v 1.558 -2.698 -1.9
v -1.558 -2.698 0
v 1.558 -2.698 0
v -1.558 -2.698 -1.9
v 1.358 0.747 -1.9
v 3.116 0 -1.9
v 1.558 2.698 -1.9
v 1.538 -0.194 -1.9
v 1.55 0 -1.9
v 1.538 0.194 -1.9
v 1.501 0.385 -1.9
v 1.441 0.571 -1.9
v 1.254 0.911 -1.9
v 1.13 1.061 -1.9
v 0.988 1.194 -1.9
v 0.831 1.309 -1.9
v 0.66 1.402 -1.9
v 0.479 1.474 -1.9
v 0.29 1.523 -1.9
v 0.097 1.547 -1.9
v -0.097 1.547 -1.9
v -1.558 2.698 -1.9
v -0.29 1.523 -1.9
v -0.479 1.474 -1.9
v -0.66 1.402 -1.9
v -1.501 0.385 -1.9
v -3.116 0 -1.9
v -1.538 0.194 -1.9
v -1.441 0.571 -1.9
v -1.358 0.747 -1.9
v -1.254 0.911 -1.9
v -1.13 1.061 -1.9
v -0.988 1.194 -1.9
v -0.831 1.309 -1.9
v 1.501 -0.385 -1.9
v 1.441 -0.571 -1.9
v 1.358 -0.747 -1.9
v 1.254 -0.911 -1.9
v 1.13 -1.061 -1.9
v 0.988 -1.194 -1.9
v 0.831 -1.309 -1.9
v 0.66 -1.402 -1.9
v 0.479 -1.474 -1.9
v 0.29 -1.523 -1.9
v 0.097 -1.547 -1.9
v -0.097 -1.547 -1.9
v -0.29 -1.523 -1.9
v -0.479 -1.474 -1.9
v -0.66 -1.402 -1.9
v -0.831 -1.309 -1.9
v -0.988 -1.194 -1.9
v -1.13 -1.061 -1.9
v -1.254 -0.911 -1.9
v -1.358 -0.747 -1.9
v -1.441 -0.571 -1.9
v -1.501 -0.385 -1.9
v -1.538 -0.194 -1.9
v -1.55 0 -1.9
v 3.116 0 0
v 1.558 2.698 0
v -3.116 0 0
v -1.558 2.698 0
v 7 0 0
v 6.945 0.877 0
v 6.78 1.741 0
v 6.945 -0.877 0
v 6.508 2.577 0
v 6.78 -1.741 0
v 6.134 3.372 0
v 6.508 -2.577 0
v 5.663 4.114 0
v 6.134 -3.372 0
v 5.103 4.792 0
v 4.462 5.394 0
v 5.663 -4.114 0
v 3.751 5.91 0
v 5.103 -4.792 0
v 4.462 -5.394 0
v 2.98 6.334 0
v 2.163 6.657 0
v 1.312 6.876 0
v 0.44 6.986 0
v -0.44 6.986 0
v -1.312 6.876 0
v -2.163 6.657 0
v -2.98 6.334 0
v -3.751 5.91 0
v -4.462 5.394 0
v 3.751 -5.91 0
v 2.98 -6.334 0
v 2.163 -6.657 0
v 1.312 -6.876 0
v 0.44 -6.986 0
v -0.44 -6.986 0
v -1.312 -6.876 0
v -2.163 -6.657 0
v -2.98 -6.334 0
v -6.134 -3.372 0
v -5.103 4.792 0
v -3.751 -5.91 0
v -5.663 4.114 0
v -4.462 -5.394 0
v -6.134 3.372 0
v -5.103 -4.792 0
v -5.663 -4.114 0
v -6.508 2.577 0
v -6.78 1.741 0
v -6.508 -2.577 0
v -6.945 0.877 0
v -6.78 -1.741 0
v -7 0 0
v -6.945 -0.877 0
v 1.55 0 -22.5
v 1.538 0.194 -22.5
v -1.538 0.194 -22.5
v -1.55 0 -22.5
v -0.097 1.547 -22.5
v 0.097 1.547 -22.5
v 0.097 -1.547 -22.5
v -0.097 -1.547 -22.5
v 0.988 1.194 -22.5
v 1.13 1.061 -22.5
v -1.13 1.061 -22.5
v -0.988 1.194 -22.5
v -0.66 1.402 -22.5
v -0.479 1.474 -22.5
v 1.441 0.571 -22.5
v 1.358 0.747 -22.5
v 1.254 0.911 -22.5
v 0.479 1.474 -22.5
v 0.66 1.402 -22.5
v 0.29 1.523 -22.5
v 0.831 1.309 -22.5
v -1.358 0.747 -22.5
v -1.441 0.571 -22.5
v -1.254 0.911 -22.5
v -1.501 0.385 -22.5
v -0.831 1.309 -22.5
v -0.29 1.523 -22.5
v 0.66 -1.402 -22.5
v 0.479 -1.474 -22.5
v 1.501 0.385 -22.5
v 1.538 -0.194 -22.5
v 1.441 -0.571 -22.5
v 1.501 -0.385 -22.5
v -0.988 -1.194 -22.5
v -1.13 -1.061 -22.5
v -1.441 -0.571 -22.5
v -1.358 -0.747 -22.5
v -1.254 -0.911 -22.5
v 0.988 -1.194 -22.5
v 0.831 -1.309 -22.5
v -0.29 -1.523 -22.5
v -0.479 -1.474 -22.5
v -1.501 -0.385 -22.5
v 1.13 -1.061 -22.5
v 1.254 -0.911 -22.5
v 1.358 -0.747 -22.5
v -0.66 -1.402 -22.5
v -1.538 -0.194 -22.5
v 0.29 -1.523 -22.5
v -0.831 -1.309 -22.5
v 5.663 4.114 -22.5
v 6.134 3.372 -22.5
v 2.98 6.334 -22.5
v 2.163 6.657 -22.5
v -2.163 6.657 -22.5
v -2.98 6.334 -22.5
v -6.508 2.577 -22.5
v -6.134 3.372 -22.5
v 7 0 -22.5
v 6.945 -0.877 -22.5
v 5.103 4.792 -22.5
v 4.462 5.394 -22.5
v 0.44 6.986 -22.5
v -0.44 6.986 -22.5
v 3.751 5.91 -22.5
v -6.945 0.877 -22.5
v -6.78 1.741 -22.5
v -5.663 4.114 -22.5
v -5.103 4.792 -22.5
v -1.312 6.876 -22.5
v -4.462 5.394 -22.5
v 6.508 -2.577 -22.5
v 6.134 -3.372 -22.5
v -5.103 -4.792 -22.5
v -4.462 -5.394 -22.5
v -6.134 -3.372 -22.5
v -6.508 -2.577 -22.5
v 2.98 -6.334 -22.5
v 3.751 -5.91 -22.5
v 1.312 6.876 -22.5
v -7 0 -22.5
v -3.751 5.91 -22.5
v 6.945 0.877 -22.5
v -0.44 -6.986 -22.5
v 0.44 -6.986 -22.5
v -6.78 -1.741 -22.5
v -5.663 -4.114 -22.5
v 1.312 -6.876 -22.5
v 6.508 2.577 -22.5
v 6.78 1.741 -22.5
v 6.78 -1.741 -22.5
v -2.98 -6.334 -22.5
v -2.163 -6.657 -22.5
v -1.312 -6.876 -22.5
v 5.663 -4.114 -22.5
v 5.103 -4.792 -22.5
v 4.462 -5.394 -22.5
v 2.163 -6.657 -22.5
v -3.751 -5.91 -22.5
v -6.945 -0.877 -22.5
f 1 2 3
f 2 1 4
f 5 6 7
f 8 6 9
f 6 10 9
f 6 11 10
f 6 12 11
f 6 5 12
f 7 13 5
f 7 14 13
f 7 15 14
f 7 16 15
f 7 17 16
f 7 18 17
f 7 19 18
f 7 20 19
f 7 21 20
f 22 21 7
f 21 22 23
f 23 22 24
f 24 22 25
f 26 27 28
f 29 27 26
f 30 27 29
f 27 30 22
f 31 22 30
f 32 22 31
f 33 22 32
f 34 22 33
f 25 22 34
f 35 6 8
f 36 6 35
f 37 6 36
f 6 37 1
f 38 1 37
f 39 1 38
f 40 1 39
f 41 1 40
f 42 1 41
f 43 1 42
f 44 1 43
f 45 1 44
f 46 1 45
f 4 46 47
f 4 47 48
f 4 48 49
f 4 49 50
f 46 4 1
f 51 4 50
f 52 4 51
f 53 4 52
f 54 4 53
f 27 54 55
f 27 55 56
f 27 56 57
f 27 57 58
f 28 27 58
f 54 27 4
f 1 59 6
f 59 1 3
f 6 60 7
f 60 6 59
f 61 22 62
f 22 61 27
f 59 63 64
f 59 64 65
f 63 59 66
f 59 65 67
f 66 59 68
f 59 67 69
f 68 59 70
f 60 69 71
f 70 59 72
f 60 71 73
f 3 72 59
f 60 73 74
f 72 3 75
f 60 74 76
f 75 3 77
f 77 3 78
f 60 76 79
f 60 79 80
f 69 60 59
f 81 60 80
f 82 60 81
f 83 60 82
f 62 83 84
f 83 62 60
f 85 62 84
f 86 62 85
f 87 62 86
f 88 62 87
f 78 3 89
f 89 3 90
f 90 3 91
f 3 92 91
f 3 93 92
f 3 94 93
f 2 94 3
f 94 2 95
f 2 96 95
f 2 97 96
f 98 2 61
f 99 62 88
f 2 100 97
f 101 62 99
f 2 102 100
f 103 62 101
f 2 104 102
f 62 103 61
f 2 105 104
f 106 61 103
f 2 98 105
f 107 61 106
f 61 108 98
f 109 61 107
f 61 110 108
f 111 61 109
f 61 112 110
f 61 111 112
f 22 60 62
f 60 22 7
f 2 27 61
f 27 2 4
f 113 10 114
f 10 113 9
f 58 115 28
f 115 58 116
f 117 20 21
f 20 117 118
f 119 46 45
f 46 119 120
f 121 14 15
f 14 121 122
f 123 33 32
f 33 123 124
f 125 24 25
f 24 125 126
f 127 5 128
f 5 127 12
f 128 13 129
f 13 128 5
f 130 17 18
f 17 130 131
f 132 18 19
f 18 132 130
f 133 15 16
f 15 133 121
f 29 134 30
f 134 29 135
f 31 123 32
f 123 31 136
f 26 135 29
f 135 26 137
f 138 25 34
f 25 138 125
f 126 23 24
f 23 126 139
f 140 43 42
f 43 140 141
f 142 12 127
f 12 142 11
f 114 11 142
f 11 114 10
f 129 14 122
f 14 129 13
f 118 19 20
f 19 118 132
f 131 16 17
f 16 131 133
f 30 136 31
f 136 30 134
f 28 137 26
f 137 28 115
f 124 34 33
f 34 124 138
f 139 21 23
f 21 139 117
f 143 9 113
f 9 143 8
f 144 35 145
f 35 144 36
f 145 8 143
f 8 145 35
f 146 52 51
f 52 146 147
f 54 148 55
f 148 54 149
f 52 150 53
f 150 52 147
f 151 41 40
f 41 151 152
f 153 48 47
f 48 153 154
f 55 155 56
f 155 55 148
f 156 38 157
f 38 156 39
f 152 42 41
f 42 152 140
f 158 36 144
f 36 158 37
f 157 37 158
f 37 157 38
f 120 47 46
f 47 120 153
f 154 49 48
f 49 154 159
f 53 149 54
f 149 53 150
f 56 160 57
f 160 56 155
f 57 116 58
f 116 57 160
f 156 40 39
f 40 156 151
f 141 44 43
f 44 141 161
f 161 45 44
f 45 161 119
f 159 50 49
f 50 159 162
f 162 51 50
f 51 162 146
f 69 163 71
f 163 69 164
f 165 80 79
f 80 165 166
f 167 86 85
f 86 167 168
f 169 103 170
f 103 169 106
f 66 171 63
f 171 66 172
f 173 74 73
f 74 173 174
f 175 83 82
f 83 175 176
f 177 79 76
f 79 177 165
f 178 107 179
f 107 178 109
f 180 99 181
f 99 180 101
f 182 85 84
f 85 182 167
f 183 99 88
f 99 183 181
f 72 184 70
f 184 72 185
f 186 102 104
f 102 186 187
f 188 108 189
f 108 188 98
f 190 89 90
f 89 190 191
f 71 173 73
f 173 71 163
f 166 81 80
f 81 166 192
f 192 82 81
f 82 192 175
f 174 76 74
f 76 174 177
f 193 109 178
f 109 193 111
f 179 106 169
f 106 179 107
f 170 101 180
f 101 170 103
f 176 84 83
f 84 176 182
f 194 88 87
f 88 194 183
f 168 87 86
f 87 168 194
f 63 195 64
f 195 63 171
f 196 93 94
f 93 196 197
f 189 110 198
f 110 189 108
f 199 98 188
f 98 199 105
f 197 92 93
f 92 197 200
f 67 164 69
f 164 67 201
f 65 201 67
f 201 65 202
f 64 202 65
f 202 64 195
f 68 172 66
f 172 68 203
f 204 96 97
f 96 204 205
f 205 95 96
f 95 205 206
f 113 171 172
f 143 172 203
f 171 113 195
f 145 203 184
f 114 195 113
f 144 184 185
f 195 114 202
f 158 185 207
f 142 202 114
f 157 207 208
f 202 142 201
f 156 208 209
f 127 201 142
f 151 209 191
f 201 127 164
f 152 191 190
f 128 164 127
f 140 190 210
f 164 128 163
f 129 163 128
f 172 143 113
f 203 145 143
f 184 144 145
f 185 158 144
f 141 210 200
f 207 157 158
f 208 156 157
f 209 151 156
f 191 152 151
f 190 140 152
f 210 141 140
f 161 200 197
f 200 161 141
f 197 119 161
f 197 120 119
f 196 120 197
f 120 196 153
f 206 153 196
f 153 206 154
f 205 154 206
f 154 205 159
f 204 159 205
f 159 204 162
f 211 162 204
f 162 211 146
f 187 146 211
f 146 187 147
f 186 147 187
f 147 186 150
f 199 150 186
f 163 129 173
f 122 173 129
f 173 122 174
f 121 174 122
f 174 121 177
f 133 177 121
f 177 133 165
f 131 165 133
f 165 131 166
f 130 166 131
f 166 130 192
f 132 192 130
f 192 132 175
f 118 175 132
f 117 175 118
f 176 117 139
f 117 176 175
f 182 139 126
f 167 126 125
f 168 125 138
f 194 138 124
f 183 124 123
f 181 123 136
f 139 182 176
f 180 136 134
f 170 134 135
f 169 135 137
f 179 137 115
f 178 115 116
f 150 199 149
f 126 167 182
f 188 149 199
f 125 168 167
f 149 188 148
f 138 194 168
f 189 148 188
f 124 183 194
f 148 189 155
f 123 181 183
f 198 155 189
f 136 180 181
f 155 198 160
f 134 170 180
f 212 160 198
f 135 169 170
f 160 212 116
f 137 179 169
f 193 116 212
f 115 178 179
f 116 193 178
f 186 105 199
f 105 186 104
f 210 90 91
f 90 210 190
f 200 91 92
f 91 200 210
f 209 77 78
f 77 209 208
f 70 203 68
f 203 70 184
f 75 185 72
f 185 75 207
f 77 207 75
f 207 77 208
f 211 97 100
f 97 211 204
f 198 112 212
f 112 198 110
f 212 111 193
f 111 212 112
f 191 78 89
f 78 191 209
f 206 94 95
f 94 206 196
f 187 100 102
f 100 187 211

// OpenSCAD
$fn = 50;

difference() {
	union() {
		translate(v = [0, 0, -22.5]) {
			cylinder(h = 22.5, r = 7.0);
		}
	}
	union() {
		translate(v = [0, 0, 0]) {
			rotate(a = [0, 0, 0]) {
				difference() {
					union() {
						translate(v = [0, 0, -1.9]) {
							linear_extrude(height = 1.9) {
								polygon(points = [[3.1158, 0.0], [1.5579000000000005, 2.698361953111554], [-1.5578999999999994, 2.6983619531115544], [-3.1158, 3.815754496783323e-16], [-1.5579000000000014, -2.6983619531115535], [1.557899999999998, -2.6983619531115552]]);
							}
						}
					}
					union();
				}
			}
		}
		#translate(v = [0, 0, -100.0]) {
			cylinder(h = 200, r = 1.55);
		}
	}
}
